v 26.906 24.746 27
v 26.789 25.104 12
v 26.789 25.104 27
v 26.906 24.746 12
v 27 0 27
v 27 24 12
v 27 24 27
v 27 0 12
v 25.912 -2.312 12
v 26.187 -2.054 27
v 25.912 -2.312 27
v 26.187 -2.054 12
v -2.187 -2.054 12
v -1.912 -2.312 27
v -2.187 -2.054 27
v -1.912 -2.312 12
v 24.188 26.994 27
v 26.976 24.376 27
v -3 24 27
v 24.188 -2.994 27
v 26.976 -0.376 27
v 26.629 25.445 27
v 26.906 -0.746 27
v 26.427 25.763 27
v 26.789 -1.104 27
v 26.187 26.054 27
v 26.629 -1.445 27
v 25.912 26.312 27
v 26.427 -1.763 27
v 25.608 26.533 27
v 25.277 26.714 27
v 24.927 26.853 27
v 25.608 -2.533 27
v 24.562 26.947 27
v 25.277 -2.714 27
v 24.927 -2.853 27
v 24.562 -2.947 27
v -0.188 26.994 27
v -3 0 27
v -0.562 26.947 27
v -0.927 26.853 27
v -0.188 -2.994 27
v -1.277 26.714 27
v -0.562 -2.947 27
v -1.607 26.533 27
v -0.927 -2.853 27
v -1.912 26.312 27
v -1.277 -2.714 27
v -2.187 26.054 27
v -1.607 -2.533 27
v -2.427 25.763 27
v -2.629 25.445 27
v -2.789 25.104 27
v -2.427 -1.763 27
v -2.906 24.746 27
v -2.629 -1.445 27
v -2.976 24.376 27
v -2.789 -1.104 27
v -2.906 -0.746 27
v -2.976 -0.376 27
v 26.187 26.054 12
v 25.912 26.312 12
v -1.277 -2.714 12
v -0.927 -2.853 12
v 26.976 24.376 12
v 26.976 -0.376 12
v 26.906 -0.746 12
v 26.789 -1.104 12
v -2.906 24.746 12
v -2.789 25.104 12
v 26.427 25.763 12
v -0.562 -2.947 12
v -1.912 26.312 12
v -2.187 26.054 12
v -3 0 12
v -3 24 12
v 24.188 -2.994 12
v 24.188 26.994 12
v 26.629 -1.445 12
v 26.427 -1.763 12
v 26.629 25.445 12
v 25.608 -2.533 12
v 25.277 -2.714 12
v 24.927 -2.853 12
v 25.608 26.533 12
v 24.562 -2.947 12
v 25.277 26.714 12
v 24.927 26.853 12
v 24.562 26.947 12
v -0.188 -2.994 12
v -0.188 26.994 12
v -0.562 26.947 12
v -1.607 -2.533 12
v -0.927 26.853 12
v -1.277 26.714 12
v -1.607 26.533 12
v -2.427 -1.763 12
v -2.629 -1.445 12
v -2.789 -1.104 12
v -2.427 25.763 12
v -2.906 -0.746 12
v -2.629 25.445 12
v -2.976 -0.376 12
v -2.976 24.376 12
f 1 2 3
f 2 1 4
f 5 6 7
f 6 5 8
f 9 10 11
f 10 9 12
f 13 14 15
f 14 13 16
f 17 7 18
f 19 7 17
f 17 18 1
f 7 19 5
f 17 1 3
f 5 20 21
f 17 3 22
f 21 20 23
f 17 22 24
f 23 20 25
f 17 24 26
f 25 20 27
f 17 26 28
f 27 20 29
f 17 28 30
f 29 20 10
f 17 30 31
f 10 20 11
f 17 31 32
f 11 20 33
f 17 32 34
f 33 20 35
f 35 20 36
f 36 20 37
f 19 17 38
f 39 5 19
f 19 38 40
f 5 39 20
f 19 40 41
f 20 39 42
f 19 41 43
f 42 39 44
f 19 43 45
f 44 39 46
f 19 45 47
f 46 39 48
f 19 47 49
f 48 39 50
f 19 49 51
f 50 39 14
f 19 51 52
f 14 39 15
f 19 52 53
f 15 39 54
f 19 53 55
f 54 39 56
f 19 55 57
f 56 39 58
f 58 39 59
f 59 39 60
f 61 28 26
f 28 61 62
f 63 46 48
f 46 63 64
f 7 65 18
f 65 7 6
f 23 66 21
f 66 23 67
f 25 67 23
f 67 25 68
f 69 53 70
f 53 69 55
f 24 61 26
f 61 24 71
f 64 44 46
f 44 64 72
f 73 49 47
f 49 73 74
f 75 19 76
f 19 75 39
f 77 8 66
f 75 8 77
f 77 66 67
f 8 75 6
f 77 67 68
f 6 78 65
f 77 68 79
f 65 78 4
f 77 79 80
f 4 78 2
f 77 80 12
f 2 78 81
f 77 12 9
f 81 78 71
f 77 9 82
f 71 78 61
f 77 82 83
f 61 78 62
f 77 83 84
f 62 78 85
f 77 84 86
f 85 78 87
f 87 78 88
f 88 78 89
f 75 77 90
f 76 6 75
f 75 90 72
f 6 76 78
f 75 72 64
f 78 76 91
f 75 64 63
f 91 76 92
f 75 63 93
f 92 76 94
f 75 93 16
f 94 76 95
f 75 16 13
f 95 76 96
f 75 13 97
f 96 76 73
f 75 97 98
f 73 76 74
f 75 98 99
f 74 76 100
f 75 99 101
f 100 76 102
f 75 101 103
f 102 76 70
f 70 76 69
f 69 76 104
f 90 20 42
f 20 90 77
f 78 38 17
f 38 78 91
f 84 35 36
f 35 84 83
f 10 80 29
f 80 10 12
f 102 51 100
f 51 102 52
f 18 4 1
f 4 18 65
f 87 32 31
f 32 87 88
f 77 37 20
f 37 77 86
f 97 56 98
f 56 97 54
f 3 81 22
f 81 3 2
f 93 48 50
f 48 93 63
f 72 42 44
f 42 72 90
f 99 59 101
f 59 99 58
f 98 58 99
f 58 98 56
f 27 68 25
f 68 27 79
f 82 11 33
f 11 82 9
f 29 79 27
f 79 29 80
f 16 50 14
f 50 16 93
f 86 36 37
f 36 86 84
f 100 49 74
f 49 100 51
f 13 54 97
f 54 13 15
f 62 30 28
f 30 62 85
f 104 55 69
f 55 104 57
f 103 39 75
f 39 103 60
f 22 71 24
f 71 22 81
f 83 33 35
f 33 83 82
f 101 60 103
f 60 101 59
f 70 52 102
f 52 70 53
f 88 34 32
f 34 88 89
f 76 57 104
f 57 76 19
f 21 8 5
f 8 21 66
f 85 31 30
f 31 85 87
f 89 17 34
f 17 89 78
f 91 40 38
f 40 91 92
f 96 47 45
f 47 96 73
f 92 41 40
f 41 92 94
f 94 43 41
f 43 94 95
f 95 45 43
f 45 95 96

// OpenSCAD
// Parameters
block_width = 30;
block_depth = 30;
block_height = 15;
round_radius = 3;

// Rounded top block
module rounded_edge_block() {
    difference() {
        // Full block with rounded top
        minkowski() {
            cube([block_width - 2*round_radius, block_depth - 2*round_radius, block_height - round_radius], center=false);
            translate([0, 0, block_height - round_radius])
                cylinder(h=round_radius, r=round_radius, $fn=50);
        }
        // Remove excess rounding at bottom
        translate([-1, -1, -10])
            cube([block_width + 2, block_depth + 2, 10]);
    }
}

// Render the block
translate([0, 0, 0])
    rounded_edge_block();
